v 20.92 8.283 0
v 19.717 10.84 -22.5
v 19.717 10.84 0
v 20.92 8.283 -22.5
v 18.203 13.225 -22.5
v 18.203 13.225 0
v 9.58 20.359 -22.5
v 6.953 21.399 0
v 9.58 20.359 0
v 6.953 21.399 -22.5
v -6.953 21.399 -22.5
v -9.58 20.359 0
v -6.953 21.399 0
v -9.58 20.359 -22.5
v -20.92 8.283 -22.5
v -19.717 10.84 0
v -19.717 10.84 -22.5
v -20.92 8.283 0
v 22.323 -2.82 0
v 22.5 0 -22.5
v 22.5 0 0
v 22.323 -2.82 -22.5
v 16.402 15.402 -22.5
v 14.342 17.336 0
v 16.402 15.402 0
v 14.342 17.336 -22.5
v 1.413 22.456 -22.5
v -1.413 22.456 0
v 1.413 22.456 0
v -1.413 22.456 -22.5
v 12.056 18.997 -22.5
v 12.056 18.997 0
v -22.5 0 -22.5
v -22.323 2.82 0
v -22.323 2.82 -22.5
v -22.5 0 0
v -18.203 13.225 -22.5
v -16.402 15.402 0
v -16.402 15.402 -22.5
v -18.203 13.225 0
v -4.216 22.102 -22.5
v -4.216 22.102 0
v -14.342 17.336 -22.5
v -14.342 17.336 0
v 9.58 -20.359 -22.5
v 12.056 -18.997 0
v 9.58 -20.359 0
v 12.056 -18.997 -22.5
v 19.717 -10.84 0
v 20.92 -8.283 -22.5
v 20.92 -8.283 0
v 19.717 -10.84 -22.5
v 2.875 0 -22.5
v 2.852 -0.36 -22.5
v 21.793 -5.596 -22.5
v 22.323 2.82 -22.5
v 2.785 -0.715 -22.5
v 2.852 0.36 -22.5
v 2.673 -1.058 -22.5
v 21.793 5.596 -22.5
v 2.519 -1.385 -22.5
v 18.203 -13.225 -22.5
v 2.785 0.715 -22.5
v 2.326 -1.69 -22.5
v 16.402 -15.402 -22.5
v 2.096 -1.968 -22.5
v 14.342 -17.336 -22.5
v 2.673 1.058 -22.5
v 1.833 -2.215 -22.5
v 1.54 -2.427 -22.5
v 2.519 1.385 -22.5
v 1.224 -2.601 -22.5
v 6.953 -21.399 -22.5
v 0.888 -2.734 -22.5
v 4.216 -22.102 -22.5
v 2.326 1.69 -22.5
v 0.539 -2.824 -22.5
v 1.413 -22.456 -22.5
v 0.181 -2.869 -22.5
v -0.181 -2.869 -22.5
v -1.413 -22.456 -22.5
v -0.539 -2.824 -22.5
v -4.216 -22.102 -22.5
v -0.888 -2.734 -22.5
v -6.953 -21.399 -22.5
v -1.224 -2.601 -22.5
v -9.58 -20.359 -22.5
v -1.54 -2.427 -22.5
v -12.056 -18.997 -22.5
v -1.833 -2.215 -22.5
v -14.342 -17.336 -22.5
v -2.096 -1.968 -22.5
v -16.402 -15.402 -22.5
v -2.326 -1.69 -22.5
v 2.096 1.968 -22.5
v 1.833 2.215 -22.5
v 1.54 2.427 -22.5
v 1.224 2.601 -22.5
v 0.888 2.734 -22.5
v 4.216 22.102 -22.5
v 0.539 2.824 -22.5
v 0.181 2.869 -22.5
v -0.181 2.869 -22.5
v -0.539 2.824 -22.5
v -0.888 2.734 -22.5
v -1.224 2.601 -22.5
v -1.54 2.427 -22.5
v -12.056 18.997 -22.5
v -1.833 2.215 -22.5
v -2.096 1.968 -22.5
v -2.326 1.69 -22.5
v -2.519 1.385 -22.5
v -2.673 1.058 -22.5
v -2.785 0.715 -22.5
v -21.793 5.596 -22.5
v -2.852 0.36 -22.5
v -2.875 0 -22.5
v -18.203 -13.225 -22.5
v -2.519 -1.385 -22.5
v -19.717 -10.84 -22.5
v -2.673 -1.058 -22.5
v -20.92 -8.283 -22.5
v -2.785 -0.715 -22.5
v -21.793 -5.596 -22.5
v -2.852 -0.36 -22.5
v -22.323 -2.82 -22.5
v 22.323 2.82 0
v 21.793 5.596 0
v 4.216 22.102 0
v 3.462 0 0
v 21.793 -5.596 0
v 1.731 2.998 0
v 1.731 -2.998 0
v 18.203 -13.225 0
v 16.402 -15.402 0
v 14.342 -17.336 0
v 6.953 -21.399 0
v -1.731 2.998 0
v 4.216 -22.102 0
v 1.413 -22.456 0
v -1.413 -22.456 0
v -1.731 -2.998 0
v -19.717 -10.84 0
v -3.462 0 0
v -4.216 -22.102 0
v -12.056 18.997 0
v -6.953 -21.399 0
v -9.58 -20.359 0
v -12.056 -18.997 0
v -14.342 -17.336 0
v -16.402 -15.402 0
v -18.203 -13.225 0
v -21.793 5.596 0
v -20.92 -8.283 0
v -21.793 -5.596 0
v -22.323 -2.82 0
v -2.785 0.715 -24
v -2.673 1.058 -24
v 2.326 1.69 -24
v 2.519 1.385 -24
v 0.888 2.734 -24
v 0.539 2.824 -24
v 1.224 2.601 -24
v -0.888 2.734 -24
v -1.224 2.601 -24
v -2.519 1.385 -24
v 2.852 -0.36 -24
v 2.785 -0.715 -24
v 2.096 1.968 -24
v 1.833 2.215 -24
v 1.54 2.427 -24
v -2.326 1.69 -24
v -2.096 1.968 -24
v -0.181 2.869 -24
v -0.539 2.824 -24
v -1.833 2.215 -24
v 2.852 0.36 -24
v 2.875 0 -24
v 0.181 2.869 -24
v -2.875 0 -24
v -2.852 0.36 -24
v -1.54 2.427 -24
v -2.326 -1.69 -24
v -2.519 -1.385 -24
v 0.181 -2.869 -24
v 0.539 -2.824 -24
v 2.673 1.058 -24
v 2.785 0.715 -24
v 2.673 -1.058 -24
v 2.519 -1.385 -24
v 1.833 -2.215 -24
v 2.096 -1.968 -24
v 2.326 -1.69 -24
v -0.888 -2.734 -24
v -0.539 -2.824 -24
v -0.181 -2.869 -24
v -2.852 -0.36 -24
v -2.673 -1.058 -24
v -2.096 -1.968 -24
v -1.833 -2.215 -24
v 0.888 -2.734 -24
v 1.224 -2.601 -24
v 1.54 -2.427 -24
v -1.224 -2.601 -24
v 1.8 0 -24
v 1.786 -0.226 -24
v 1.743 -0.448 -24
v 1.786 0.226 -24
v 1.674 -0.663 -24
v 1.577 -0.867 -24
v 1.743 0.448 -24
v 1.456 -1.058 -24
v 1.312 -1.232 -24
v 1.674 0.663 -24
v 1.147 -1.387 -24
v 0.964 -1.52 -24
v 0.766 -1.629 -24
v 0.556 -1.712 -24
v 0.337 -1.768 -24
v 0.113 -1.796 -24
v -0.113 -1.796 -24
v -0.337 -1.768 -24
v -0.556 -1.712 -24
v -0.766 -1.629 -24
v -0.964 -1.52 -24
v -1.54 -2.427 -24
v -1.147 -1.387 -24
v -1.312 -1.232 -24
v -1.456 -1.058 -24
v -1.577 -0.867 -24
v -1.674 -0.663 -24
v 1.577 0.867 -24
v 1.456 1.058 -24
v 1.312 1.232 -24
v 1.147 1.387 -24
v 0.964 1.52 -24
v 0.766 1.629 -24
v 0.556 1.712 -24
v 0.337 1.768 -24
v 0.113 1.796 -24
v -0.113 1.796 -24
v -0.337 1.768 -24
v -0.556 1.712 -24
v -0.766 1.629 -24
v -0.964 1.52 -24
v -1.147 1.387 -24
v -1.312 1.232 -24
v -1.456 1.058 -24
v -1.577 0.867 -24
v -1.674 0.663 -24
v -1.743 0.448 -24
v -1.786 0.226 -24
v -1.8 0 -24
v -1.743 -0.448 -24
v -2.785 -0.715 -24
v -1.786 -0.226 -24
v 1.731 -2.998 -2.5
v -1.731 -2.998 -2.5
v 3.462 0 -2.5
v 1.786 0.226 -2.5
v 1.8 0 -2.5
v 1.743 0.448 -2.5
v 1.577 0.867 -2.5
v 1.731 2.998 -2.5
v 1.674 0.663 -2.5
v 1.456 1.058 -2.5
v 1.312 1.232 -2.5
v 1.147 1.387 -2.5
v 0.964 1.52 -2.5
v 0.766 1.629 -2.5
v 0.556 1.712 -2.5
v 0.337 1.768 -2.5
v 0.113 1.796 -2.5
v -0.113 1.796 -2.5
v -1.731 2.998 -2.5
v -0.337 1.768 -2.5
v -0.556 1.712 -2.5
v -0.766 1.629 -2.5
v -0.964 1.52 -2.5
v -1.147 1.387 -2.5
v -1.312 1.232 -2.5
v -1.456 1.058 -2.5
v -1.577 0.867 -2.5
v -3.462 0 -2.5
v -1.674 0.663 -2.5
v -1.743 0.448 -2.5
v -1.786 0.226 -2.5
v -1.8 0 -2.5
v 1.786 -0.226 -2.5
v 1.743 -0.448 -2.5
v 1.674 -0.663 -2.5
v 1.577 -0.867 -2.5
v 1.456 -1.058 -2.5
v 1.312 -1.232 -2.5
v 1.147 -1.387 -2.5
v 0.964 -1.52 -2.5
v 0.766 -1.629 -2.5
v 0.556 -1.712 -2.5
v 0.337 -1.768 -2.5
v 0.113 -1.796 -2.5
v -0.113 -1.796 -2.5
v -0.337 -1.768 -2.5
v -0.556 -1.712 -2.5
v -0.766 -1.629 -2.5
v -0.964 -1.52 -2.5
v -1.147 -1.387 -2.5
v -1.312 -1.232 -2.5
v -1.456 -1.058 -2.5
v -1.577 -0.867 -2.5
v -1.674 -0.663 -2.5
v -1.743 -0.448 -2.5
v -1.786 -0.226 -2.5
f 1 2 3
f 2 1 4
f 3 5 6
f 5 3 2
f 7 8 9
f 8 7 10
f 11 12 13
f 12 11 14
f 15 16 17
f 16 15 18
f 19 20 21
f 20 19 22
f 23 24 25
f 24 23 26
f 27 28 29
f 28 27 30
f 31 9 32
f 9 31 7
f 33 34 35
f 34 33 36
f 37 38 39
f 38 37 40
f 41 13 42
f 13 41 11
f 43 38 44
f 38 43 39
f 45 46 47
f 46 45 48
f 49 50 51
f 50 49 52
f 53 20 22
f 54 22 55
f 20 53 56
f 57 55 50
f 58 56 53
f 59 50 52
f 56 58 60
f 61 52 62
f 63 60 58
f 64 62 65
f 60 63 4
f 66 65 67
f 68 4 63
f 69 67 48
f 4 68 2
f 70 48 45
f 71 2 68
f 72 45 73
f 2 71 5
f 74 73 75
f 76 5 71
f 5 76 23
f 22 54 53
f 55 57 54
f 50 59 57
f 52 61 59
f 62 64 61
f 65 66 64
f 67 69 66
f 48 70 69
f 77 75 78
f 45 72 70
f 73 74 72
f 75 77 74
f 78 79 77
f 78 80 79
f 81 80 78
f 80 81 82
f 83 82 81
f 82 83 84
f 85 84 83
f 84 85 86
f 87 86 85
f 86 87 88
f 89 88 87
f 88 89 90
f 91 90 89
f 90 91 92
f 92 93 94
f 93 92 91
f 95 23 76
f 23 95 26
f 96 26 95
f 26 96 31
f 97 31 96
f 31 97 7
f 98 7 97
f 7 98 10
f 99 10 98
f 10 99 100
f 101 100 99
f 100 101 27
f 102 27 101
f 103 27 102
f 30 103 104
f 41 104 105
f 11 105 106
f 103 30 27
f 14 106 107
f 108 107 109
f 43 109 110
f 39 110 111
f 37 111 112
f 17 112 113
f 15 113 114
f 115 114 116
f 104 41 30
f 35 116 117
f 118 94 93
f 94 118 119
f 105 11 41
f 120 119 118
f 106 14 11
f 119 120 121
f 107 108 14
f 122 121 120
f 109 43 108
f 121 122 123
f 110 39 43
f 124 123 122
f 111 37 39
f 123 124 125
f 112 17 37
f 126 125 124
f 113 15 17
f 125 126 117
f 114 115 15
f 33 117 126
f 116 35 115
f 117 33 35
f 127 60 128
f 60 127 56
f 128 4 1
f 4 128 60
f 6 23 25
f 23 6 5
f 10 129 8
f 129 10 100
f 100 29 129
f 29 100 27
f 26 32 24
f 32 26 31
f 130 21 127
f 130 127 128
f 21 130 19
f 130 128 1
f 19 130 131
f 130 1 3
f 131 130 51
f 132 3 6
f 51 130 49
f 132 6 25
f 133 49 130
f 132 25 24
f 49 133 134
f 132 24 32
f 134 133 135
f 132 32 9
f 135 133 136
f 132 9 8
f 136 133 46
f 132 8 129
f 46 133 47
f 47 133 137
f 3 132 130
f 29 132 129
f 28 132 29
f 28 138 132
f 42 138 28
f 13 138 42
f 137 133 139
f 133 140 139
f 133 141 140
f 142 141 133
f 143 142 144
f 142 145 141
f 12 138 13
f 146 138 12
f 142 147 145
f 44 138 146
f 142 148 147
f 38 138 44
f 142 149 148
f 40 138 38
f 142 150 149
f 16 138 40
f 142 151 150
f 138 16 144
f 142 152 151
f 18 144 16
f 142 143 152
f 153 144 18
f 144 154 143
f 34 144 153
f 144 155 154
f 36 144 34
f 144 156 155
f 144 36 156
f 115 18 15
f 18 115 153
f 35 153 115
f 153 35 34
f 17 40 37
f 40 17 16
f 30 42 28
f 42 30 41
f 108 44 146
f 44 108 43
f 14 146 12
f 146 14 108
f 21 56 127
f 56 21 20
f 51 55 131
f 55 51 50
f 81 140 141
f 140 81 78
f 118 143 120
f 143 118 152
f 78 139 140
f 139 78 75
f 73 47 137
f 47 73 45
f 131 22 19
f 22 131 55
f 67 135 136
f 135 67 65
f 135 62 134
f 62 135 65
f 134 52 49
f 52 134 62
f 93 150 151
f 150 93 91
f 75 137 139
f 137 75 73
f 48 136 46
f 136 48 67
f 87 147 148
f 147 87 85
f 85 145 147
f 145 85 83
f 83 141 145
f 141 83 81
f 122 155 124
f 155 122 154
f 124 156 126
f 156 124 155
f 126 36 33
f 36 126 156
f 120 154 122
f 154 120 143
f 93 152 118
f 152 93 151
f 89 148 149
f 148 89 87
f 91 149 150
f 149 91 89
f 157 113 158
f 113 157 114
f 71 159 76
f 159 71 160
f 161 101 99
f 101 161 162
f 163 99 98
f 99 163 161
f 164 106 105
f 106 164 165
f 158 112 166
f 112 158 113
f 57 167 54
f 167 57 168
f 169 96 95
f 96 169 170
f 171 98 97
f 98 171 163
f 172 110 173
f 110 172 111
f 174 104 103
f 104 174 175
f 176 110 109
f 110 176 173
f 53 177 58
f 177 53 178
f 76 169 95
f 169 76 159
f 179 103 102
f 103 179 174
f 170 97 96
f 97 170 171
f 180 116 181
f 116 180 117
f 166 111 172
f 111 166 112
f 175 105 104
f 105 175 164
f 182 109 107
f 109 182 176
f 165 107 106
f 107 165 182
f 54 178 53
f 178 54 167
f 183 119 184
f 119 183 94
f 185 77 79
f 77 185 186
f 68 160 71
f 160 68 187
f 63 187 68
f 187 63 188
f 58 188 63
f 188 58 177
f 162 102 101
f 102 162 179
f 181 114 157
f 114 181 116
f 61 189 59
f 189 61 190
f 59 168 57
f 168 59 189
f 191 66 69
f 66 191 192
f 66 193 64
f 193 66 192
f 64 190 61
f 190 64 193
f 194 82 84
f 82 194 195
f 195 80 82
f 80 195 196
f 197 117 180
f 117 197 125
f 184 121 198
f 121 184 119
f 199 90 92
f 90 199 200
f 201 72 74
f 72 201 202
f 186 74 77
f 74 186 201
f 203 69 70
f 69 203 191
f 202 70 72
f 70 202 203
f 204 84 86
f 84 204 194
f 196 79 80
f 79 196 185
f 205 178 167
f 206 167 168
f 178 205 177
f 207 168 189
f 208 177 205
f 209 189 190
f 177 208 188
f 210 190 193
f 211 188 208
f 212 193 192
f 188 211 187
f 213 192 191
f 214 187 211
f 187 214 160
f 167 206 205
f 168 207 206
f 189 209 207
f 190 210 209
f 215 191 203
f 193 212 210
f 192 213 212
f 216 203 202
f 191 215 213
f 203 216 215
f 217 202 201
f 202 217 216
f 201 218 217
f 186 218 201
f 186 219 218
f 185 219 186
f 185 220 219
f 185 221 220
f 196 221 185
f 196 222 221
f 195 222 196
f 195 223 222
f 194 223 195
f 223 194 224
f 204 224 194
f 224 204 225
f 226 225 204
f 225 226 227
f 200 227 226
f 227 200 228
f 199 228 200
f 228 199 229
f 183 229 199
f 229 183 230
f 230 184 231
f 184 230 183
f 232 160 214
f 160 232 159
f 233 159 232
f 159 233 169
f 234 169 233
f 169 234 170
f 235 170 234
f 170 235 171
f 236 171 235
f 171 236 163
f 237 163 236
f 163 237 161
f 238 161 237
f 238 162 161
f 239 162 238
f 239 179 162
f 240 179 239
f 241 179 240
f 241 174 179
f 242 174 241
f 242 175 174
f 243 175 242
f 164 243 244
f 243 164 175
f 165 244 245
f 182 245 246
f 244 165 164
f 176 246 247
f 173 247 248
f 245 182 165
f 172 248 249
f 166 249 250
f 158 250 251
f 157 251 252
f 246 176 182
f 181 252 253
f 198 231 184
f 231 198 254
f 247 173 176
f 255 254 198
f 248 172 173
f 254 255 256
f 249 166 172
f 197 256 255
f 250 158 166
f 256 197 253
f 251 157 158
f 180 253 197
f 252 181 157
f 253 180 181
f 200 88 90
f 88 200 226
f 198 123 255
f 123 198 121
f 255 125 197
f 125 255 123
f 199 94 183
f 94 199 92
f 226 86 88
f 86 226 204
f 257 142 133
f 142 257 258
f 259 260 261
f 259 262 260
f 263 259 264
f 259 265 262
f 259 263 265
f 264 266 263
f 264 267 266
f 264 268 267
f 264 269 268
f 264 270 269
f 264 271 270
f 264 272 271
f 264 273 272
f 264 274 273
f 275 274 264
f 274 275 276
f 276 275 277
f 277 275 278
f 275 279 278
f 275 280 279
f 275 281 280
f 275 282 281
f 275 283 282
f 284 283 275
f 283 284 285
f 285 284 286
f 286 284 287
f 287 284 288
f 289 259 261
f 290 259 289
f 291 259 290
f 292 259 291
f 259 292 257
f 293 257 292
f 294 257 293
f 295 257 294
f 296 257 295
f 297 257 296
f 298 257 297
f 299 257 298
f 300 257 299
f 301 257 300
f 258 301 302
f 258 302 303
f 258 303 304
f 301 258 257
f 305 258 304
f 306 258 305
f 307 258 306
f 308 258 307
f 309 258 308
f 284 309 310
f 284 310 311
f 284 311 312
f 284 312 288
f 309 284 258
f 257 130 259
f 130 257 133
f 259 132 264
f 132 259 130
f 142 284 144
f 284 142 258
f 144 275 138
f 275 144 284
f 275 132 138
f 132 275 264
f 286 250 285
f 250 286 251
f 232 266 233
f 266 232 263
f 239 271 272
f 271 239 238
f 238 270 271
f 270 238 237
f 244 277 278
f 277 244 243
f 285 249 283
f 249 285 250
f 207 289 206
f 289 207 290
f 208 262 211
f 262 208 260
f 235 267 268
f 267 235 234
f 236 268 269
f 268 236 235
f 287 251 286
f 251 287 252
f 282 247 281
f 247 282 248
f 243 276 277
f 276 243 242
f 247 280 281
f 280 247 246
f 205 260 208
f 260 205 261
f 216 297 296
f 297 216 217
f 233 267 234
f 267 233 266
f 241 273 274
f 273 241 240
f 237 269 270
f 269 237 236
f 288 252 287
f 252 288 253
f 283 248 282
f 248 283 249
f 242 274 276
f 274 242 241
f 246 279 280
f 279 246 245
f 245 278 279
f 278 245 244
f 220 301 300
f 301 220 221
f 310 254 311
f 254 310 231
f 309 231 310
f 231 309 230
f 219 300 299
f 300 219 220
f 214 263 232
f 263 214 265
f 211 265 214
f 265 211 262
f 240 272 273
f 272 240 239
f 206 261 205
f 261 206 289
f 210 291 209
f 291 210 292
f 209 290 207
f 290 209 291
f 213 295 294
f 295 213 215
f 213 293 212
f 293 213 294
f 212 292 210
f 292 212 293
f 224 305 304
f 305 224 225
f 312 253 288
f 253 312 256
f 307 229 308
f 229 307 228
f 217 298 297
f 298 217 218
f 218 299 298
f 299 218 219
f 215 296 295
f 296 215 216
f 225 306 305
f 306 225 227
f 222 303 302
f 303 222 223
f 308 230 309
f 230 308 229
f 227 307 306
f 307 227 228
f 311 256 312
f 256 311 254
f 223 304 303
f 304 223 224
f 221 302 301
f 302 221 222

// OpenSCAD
$fn = 50;

difference() {
	union() {
		translate(v = [0, 0, -22.5]) {
			cylinder(h = 22.5, r = 22.5);
		}
		#translate(v = [0, 0, -24.0]) {
			cylinder(h = 24, r = 2.875);
		}
	}
	union() {
		translate(v = [0, 0, 0]) {
			rotate(a = [0, 0, 0]) {
				difference() {
					union() {
						translate(v = [0, 0, -2.5]) {
							linear_extrude(height = 2.5) {
								polygon(points = [[3.4619999999999997, 0.0], [1.7310000000000003, 2.9981799479017264], [-1.7309999999999992, 2.9981799479017264], [-3.4619999999999997, 4.2397272186481365e-16], [-1.7310000000000014, -2.998179947901726], [1.7309999999999977, -2.9981799479017277]]);
							}
						}
					}
					union();
				}
			}
		}
		#translate(v = [0, 0, -100.0]) {
			cylinder(h = 200, r = 1.8);
		}
	}
}
